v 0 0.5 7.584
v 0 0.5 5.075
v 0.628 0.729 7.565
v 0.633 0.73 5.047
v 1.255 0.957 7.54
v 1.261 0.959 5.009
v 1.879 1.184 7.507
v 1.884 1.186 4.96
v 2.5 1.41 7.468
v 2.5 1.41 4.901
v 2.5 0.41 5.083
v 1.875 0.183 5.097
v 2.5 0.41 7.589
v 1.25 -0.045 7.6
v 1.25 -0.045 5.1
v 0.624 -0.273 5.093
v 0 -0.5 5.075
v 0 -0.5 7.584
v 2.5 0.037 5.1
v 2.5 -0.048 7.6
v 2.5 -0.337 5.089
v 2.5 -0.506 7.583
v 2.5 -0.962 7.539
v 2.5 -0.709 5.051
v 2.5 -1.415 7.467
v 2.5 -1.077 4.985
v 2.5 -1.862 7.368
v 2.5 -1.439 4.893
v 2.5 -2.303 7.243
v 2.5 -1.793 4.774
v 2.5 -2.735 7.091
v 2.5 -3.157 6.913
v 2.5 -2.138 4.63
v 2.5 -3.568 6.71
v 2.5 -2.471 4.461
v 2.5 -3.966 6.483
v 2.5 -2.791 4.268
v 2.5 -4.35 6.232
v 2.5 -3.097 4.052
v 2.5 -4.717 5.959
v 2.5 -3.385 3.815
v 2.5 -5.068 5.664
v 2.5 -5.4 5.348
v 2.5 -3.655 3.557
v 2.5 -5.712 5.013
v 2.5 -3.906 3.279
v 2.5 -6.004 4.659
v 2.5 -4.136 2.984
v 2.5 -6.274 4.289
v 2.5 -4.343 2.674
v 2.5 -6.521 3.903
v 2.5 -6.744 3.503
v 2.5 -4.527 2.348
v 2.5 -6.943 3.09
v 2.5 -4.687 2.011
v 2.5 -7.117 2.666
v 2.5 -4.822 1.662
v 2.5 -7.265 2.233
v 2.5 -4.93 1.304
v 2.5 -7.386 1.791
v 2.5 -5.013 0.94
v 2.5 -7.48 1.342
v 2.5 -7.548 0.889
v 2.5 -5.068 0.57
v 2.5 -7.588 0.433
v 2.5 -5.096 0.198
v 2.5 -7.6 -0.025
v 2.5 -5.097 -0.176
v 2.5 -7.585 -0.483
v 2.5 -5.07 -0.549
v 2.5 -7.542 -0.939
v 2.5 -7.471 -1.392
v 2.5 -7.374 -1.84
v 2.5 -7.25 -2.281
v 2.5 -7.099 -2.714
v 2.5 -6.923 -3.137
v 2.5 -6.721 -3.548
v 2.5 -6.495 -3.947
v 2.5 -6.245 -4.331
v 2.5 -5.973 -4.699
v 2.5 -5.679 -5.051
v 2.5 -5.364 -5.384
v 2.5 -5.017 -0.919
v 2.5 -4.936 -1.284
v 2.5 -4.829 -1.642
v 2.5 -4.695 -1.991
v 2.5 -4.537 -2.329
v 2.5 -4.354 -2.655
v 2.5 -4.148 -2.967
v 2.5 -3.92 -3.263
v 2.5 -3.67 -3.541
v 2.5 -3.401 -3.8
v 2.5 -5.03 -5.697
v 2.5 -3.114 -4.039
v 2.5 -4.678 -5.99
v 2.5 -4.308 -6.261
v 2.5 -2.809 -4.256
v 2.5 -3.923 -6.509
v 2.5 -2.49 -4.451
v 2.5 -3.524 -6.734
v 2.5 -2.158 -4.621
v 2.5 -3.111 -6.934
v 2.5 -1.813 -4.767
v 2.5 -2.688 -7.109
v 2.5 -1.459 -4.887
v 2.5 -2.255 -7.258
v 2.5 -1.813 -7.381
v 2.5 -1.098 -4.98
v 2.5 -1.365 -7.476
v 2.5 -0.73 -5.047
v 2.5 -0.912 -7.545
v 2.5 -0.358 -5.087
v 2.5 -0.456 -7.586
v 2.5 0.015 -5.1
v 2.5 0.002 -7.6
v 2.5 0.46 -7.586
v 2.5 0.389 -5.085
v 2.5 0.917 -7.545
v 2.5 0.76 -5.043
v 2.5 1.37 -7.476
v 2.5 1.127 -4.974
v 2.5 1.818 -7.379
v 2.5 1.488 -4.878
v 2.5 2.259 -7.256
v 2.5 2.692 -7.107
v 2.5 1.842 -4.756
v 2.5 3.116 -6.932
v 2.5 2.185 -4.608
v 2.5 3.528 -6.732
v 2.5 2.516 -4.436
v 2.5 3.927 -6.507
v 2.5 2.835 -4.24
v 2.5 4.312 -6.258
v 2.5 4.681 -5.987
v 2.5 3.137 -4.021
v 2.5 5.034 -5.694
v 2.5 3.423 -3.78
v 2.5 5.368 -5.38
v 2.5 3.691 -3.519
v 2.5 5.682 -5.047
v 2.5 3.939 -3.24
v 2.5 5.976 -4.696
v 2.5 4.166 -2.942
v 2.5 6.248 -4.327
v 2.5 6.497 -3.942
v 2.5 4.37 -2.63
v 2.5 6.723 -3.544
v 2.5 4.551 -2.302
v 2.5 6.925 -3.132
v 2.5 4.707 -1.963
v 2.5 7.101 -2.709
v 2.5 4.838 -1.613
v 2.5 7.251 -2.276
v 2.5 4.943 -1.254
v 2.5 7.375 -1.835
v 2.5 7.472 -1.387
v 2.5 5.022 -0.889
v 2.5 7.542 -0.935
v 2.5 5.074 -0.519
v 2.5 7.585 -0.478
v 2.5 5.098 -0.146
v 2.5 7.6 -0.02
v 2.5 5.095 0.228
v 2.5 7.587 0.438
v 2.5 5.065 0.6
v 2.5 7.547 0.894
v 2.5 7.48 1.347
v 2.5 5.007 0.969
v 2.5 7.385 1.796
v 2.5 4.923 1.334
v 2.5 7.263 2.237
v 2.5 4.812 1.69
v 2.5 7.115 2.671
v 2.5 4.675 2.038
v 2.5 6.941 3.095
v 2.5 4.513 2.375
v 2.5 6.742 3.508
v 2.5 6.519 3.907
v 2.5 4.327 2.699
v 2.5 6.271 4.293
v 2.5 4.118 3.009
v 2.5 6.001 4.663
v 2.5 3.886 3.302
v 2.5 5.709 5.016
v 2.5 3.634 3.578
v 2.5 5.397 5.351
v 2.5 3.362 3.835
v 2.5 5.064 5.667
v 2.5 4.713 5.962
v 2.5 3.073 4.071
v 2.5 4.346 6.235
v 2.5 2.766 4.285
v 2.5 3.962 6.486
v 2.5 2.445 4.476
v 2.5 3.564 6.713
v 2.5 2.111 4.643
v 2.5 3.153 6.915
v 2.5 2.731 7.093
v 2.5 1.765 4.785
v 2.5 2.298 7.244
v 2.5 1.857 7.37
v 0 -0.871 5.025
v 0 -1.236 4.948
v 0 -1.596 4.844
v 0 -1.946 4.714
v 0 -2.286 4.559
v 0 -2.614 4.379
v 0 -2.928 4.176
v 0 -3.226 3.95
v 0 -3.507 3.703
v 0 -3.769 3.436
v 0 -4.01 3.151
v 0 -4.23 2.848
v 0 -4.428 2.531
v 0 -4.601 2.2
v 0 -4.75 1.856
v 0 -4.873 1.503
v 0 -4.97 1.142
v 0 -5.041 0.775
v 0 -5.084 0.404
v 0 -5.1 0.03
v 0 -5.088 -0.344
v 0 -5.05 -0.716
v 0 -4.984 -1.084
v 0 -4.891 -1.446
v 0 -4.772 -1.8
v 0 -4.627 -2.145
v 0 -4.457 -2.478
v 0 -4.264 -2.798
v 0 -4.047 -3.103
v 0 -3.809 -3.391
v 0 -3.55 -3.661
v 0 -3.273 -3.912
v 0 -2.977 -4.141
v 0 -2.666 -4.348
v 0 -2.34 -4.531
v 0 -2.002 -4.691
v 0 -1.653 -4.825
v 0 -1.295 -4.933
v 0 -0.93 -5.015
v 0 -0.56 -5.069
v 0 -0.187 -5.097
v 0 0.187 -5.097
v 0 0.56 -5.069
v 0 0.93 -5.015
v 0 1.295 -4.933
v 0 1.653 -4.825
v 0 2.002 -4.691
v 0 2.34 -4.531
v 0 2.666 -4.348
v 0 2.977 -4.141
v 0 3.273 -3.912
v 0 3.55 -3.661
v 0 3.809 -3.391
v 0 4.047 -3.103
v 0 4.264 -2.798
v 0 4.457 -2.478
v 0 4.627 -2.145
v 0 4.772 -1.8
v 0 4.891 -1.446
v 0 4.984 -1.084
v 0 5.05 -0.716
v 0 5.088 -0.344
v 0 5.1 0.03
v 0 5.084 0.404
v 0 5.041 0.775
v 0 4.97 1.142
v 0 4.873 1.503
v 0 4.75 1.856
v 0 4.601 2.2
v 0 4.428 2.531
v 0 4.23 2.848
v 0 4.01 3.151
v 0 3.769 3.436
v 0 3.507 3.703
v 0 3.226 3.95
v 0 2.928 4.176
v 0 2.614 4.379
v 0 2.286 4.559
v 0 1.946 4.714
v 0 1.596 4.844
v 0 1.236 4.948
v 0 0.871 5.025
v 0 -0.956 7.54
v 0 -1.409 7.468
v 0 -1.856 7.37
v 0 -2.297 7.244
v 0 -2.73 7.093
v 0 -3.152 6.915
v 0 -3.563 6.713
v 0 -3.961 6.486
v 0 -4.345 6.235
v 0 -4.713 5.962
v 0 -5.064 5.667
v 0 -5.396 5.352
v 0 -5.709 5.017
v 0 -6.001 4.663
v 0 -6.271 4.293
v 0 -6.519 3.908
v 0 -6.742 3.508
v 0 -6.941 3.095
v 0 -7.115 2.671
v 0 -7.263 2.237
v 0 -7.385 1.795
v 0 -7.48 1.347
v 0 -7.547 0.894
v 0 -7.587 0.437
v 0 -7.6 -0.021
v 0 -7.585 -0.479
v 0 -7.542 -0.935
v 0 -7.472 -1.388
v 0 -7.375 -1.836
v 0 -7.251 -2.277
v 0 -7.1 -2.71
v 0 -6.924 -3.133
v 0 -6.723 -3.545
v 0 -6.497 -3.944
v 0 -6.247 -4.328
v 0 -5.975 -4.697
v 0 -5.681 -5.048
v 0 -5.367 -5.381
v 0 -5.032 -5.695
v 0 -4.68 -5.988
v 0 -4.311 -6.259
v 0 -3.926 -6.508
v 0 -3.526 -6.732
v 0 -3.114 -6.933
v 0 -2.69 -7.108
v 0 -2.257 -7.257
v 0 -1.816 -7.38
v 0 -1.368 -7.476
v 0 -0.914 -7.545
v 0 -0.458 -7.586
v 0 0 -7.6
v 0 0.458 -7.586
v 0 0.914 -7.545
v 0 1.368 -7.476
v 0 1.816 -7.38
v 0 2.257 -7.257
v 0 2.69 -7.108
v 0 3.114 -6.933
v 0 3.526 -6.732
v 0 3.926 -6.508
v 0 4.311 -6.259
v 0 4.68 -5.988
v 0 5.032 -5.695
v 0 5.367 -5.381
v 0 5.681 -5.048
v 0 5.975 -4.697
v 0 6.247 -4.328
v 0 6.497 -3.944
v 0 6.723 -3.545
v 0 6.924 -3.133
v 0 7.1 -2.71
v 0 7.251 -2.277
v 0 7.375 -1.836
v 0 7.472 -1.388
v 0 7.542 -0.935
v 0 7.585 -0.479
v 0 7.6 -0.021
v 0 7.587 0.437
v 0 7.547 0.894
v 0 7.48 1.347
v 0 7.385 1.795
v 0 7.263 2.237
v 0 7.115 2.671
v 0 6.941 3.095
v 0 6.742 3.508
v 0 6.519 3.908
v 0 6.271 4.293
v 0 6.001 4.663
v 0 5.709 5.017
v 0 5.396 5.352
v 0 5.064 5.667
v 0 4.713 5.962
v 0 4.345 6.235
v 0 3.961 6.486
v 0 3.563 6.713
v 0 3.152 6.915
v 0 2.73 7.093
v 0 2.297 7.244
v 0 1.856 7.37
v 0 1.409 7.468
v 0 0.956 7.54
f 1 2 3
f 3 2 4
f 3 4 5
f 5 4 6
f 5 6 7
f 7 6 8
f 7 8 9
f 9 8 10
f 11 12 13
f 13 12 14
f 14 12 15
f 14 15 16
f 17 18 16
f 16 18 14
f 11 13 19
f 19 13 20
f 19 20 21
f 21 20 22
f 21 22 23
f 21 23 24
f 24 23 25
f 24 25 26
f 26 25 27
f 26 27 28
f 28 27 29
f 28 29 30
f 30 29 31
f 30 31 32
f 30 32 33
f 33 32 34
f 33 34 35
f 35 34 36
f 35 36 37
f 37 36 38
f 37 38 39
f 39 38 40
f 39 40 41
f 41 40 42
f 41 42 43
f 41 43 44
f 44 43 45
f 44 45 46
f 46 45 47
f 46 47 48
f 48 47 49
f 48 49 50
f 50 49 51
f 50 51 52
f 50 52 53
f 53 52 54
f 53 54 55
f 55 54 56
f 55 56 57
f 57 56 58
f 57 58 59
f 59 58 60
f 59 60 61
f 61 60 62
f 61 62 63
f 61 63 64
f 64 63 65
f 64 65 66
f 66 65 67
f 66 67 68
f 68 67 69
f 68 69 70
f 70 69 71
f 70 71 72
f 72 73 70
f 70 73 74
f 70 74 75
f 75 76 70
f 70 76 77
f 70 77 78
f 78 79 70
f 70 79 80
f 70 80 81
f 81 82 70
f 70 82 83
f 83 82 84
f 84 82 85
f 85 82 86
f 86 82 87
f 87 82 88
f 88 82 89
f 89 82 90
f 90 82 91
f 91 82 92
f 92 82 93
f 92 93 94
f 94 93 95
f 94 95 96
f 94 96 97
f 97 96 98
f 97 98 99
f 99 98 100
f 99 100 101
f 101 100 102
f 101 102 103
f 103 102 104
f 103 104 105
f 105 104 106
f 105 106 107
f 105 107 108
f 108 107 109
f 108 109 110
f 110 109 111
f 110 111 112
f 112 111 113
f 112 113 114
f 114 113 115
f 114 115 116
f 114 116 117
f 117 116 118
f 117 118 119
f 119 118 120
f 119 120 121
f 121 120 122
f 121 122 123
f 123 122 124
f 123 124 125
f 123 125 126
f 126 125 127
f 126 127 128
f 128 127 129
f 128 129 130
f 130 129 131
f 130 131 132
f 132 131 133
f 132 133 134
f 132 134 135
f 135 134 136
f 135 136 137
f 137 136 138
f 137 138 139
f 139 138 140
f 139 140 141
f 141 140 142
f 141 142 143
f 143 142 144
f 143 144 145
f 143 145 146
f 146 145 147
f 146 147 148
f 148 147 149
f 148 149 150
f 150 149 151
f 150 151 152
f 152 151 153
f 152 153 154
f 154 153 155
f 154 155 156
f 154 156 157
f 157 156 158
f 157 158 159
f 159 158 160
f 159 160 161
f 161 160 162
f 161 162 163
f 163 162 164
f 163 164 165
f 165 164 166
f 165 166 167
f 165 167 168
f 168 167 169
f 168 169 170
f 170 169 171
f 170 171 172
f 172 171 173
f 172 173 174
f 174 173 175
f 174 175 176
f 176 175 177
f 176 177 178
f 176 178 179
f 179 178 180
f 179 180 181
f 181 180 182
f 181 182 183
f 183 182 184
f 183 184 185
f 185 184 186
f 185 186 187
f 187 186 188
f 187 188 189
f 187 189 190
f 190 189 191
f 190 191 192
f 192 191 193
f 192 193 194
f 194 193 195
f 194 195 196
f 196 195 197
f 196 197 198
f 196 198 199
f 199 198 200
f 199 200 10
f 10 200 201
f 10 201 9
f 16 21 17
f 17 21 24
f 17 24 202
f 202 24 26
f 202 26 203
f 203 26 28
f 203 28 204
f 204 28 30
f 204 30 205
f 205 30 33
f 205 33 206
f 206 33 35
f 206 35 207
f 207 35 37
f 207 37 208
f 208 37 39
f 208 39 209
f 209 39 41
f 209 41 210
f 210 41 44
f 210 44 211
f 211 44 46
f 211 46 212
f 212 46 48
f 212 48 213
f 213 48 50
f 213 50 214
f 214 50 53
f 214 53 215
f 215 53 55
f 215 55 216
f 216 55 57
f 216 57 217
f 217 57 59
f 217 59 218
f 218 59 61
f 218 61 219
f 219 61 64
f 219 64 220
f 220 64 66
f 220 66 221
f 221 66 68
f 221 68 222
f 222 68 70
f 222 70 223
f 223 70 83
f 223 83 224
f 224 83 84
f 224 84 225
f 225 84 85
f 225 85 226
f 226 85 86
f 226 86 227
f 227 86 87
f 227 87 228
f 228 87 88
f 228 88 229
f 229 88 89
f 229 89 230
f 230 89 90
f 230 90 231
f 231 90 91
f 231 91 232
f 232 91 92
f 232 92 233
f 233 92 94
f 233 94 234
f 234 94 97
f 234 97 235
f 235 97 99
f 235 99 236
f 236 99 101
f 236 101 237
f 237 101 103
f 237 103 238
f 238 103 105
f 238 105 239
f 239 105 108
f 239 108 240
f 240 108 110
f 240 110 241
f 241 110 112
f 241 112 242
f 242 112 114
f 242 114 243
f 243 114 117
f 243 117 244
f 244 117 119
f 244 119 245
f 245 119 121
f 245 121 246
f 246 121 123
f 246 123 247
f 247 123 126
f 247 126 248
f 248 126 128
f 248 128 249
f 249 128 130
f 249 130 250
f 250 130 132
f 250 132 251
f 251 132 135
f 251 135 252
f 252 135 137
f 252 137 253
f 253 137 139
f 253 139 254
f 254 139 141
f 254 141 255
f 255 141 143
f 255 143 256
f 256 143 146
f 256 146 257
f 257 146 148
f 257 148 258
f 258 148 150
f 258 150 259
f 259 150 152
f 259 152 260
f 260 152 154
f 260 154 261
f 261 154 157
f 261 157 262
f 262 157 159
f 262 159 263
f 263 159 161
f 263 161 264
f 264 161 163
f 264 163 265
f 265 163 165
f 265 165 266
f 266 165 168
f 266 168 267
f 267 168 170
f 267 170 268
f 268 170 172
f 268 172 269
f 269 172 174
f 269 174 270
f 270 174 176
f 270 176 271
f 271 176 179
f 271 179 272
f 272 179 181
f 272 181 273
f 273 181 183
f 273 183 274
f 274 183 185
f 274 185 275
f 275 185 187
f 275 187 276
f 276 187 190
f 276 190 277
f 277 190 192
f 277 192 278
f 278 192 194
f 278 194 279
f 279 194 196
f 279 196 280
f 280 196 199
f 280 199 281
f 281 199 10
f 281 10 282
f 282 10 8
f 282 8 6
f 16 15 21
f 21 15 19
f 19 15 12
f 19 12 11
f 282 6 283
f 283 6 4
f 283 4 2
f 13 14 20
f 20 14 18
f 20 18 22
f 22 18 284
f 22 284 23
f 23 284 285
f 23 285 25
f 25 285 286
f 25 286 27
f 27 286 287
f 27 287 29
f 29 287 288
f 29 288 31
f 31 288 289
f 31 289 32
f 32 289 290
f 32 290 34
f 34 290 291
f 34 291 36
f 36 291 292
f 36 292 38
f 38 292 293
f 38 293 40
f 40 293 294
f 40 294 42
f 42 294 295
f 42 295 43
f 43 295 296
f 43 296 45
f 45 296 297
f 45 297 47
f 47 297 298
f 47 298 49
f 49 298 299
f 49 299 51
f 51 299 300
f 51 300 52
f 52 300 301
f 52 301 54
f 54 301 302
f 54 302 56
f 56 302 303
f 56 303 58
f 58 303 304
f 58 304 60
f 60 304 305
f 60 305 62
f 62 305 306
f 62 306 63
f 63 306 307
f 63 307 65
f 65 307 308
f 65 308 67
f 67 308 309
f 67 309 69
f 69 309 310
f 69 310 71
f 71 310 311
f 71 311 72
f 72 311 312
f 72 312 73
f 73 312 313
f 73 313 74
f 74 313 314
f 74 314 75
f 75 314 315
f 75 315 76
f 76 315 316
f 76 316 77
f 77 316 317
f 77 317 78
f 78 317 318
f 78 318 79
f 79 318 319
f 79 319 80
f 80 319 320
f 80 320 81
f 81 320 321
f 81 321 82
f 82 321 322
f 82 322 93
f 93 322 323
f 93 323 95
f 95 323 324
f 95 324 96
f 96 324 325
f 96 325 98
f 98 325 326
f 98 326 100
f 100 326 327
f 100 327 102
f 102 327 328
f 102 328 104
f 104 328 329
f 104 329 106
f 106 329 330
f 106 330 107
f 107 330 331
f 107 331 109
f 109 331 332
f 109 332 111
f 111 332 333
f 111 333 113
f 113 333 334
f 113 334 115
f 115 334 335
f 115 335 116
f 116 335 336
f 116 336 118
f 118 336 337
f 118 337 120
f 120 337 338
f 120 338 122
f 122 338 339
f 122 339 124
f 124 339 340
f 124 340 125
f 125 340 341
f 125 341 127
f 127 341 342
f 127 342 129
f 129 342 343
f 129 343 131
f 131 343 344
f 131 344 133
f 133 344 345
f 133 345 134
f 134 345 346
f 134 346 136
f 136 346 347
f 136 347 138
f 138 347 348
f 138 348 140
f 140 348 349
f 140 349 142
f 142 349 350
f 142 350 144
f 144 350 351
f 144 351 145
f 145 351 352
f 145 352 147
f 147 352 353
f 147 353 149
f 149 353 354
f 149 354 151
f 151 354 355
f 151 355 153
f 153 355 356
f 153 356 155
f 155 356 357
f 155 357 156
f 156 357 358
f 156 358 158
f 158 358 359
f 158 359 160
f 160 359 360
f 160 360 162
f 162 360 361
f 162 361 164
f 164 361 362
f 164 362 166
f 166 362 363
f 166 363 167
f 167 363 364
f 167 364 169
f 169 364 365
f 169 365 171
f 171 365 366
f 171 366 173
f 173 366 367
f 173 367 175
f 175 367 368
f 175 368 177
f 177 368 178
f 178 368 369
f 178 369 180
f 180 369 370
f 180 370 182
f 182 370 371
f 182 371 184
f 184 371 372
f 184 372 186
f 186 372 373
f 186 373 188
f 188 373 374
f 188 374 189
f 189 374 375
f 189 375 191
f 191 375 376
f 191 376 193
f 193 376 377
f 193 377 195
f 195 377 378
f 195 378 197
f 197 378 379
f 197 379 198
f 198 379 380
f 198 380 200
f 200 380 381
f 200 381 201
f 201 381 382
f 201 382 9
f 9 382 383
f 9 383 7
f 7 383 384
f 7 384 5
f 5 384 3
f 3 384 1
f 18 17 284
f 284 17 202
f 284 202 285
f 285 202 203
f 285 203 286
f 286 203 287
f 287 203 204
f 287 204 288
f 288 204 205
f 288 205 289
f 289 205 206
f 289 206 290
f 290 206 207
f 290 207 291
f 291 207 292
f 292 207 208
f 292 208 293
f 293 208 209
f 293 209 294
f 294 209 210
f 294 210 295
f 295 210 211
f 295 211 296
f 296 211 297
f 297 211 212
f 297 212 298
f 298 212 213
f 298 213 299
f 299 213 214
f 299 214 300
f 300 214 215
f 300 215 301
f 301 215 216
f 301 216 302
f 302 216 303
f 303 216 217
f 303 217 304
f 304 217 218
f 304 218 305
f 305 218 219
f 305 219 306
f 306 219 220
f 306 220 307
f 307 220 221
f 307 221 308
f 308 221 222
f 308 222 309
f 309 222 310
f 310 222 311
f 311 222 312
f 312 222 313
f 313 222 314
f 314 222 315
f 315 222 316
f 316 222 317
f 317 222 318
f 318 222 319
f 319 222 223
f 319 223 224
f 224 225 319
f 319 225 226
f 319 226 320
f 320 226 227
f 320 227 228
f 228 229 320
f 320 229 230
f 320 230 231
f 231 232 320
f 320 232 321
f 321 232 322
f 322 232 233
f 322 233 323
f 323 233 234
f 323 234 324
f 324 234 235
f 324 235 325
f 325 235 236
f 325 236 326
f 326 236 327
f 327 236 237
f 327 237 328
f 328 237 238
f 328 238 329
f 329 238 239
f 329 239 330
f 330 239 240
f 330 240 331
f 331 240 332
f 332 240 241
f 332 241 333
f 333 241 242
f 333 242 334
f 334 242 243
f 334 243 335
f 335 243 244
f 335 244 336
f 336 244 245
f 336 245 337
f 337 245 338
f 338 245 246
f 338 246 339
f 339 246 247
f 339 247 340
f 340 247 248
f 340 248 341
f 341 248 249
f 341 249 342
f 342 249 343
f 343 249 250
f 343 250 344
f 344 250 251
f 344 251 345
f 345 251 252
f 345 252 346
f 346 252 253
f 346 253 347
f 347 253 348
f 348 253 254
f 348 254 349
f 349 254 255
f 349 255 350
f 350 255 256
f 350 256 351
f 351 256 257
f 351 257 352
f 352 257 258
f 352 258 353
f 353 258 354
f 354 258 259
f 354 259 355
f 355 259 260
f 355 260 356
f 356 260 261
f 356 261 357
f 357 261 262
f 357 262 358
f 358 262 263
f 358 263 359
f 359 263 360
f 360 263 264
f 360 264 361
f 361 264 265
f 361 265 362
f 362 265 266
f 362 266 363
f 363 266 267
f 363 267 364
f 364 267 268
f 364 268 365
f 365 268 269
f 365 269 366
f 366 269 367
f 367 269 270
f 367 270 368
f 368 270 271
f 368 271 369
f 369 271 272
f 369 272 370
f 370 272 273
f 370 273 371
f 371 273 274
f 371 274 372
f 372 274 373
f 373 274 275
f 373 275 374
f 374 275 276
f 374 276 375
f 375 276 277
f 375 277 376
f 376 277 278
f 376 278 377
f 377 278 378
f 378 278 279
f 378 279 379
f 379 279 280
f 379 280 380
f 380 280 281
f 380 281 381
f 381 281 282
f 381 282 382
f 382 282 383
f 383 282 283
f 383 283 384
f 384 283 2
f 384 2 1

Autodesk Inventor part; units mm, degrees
ref_plane "YZ Plane" through (0, 0, 0) normal (1, 0, 0) x (0, 1, 0)
ref_plane "XZ Plane" through (0, 0, 0) normal (0, 1, 0) x (-1, 0, 0)
sketch "Эскиз1" plane through (0, 0, 0) normal (1, 0, 0) x (0, 1, 0)
  circle A0 centre (0, 0) radius 7.6
  circle A1 centre (0, 0) radius 5.1
  dimension "d0" = 10.2
  dimension "d1" = 15.2
extrude "Базовый элемент" add sketch "Эскиз1" along normal blind 2.5
sketch "Эскиз2" plane through (0, 0, 0) normal (0, 0, 1) x (1, 0, 0)
  line L0 (0, -5.1) -> (0, 5.1) projected
  line L1 (2.5, 7.6) -> (2.5, -7.6) projected
  line L2 (-1.2, 0) -> (7.2, 0) projected
  line L3 (0, -0.5) -> (2.5, 0.4099)
  line L4 (0, 0.5) -> (2.5, 1.4099)
  dimension "d4" = 0.5
  dimension "d5" = 0.5
  dimension "d6" = 70
extrude "Вырез" cut sketch "Эскиз2" along normal up to next contours L0 L2 L3 | L0 L4 L1 L3 L2
ref_plane "Work Plane1" through (0, 0, 0) normal (0, -1, 0) x (1, 0, 0)
equation "\"d0\" = SD1"
equation "\"d1\" = SD2"
equation "\"d2\" = SD"
equation "\"d4\" = 0.2 * SD"
equation "\"d5\" = 0.2 * SD"
equation "\"d6\" = FAWI"
equation "\"d7\" = SD"
equation "\"SD1\" = 10.2"
equation "\"SD2\" = 15.2"
equation "\"SD\" = 2.5"
equation "\"FAWI\" = 70deg"
properties part number "Шайба  10 N ГОСТ 6402-70" material "Сталь, мягкая"
